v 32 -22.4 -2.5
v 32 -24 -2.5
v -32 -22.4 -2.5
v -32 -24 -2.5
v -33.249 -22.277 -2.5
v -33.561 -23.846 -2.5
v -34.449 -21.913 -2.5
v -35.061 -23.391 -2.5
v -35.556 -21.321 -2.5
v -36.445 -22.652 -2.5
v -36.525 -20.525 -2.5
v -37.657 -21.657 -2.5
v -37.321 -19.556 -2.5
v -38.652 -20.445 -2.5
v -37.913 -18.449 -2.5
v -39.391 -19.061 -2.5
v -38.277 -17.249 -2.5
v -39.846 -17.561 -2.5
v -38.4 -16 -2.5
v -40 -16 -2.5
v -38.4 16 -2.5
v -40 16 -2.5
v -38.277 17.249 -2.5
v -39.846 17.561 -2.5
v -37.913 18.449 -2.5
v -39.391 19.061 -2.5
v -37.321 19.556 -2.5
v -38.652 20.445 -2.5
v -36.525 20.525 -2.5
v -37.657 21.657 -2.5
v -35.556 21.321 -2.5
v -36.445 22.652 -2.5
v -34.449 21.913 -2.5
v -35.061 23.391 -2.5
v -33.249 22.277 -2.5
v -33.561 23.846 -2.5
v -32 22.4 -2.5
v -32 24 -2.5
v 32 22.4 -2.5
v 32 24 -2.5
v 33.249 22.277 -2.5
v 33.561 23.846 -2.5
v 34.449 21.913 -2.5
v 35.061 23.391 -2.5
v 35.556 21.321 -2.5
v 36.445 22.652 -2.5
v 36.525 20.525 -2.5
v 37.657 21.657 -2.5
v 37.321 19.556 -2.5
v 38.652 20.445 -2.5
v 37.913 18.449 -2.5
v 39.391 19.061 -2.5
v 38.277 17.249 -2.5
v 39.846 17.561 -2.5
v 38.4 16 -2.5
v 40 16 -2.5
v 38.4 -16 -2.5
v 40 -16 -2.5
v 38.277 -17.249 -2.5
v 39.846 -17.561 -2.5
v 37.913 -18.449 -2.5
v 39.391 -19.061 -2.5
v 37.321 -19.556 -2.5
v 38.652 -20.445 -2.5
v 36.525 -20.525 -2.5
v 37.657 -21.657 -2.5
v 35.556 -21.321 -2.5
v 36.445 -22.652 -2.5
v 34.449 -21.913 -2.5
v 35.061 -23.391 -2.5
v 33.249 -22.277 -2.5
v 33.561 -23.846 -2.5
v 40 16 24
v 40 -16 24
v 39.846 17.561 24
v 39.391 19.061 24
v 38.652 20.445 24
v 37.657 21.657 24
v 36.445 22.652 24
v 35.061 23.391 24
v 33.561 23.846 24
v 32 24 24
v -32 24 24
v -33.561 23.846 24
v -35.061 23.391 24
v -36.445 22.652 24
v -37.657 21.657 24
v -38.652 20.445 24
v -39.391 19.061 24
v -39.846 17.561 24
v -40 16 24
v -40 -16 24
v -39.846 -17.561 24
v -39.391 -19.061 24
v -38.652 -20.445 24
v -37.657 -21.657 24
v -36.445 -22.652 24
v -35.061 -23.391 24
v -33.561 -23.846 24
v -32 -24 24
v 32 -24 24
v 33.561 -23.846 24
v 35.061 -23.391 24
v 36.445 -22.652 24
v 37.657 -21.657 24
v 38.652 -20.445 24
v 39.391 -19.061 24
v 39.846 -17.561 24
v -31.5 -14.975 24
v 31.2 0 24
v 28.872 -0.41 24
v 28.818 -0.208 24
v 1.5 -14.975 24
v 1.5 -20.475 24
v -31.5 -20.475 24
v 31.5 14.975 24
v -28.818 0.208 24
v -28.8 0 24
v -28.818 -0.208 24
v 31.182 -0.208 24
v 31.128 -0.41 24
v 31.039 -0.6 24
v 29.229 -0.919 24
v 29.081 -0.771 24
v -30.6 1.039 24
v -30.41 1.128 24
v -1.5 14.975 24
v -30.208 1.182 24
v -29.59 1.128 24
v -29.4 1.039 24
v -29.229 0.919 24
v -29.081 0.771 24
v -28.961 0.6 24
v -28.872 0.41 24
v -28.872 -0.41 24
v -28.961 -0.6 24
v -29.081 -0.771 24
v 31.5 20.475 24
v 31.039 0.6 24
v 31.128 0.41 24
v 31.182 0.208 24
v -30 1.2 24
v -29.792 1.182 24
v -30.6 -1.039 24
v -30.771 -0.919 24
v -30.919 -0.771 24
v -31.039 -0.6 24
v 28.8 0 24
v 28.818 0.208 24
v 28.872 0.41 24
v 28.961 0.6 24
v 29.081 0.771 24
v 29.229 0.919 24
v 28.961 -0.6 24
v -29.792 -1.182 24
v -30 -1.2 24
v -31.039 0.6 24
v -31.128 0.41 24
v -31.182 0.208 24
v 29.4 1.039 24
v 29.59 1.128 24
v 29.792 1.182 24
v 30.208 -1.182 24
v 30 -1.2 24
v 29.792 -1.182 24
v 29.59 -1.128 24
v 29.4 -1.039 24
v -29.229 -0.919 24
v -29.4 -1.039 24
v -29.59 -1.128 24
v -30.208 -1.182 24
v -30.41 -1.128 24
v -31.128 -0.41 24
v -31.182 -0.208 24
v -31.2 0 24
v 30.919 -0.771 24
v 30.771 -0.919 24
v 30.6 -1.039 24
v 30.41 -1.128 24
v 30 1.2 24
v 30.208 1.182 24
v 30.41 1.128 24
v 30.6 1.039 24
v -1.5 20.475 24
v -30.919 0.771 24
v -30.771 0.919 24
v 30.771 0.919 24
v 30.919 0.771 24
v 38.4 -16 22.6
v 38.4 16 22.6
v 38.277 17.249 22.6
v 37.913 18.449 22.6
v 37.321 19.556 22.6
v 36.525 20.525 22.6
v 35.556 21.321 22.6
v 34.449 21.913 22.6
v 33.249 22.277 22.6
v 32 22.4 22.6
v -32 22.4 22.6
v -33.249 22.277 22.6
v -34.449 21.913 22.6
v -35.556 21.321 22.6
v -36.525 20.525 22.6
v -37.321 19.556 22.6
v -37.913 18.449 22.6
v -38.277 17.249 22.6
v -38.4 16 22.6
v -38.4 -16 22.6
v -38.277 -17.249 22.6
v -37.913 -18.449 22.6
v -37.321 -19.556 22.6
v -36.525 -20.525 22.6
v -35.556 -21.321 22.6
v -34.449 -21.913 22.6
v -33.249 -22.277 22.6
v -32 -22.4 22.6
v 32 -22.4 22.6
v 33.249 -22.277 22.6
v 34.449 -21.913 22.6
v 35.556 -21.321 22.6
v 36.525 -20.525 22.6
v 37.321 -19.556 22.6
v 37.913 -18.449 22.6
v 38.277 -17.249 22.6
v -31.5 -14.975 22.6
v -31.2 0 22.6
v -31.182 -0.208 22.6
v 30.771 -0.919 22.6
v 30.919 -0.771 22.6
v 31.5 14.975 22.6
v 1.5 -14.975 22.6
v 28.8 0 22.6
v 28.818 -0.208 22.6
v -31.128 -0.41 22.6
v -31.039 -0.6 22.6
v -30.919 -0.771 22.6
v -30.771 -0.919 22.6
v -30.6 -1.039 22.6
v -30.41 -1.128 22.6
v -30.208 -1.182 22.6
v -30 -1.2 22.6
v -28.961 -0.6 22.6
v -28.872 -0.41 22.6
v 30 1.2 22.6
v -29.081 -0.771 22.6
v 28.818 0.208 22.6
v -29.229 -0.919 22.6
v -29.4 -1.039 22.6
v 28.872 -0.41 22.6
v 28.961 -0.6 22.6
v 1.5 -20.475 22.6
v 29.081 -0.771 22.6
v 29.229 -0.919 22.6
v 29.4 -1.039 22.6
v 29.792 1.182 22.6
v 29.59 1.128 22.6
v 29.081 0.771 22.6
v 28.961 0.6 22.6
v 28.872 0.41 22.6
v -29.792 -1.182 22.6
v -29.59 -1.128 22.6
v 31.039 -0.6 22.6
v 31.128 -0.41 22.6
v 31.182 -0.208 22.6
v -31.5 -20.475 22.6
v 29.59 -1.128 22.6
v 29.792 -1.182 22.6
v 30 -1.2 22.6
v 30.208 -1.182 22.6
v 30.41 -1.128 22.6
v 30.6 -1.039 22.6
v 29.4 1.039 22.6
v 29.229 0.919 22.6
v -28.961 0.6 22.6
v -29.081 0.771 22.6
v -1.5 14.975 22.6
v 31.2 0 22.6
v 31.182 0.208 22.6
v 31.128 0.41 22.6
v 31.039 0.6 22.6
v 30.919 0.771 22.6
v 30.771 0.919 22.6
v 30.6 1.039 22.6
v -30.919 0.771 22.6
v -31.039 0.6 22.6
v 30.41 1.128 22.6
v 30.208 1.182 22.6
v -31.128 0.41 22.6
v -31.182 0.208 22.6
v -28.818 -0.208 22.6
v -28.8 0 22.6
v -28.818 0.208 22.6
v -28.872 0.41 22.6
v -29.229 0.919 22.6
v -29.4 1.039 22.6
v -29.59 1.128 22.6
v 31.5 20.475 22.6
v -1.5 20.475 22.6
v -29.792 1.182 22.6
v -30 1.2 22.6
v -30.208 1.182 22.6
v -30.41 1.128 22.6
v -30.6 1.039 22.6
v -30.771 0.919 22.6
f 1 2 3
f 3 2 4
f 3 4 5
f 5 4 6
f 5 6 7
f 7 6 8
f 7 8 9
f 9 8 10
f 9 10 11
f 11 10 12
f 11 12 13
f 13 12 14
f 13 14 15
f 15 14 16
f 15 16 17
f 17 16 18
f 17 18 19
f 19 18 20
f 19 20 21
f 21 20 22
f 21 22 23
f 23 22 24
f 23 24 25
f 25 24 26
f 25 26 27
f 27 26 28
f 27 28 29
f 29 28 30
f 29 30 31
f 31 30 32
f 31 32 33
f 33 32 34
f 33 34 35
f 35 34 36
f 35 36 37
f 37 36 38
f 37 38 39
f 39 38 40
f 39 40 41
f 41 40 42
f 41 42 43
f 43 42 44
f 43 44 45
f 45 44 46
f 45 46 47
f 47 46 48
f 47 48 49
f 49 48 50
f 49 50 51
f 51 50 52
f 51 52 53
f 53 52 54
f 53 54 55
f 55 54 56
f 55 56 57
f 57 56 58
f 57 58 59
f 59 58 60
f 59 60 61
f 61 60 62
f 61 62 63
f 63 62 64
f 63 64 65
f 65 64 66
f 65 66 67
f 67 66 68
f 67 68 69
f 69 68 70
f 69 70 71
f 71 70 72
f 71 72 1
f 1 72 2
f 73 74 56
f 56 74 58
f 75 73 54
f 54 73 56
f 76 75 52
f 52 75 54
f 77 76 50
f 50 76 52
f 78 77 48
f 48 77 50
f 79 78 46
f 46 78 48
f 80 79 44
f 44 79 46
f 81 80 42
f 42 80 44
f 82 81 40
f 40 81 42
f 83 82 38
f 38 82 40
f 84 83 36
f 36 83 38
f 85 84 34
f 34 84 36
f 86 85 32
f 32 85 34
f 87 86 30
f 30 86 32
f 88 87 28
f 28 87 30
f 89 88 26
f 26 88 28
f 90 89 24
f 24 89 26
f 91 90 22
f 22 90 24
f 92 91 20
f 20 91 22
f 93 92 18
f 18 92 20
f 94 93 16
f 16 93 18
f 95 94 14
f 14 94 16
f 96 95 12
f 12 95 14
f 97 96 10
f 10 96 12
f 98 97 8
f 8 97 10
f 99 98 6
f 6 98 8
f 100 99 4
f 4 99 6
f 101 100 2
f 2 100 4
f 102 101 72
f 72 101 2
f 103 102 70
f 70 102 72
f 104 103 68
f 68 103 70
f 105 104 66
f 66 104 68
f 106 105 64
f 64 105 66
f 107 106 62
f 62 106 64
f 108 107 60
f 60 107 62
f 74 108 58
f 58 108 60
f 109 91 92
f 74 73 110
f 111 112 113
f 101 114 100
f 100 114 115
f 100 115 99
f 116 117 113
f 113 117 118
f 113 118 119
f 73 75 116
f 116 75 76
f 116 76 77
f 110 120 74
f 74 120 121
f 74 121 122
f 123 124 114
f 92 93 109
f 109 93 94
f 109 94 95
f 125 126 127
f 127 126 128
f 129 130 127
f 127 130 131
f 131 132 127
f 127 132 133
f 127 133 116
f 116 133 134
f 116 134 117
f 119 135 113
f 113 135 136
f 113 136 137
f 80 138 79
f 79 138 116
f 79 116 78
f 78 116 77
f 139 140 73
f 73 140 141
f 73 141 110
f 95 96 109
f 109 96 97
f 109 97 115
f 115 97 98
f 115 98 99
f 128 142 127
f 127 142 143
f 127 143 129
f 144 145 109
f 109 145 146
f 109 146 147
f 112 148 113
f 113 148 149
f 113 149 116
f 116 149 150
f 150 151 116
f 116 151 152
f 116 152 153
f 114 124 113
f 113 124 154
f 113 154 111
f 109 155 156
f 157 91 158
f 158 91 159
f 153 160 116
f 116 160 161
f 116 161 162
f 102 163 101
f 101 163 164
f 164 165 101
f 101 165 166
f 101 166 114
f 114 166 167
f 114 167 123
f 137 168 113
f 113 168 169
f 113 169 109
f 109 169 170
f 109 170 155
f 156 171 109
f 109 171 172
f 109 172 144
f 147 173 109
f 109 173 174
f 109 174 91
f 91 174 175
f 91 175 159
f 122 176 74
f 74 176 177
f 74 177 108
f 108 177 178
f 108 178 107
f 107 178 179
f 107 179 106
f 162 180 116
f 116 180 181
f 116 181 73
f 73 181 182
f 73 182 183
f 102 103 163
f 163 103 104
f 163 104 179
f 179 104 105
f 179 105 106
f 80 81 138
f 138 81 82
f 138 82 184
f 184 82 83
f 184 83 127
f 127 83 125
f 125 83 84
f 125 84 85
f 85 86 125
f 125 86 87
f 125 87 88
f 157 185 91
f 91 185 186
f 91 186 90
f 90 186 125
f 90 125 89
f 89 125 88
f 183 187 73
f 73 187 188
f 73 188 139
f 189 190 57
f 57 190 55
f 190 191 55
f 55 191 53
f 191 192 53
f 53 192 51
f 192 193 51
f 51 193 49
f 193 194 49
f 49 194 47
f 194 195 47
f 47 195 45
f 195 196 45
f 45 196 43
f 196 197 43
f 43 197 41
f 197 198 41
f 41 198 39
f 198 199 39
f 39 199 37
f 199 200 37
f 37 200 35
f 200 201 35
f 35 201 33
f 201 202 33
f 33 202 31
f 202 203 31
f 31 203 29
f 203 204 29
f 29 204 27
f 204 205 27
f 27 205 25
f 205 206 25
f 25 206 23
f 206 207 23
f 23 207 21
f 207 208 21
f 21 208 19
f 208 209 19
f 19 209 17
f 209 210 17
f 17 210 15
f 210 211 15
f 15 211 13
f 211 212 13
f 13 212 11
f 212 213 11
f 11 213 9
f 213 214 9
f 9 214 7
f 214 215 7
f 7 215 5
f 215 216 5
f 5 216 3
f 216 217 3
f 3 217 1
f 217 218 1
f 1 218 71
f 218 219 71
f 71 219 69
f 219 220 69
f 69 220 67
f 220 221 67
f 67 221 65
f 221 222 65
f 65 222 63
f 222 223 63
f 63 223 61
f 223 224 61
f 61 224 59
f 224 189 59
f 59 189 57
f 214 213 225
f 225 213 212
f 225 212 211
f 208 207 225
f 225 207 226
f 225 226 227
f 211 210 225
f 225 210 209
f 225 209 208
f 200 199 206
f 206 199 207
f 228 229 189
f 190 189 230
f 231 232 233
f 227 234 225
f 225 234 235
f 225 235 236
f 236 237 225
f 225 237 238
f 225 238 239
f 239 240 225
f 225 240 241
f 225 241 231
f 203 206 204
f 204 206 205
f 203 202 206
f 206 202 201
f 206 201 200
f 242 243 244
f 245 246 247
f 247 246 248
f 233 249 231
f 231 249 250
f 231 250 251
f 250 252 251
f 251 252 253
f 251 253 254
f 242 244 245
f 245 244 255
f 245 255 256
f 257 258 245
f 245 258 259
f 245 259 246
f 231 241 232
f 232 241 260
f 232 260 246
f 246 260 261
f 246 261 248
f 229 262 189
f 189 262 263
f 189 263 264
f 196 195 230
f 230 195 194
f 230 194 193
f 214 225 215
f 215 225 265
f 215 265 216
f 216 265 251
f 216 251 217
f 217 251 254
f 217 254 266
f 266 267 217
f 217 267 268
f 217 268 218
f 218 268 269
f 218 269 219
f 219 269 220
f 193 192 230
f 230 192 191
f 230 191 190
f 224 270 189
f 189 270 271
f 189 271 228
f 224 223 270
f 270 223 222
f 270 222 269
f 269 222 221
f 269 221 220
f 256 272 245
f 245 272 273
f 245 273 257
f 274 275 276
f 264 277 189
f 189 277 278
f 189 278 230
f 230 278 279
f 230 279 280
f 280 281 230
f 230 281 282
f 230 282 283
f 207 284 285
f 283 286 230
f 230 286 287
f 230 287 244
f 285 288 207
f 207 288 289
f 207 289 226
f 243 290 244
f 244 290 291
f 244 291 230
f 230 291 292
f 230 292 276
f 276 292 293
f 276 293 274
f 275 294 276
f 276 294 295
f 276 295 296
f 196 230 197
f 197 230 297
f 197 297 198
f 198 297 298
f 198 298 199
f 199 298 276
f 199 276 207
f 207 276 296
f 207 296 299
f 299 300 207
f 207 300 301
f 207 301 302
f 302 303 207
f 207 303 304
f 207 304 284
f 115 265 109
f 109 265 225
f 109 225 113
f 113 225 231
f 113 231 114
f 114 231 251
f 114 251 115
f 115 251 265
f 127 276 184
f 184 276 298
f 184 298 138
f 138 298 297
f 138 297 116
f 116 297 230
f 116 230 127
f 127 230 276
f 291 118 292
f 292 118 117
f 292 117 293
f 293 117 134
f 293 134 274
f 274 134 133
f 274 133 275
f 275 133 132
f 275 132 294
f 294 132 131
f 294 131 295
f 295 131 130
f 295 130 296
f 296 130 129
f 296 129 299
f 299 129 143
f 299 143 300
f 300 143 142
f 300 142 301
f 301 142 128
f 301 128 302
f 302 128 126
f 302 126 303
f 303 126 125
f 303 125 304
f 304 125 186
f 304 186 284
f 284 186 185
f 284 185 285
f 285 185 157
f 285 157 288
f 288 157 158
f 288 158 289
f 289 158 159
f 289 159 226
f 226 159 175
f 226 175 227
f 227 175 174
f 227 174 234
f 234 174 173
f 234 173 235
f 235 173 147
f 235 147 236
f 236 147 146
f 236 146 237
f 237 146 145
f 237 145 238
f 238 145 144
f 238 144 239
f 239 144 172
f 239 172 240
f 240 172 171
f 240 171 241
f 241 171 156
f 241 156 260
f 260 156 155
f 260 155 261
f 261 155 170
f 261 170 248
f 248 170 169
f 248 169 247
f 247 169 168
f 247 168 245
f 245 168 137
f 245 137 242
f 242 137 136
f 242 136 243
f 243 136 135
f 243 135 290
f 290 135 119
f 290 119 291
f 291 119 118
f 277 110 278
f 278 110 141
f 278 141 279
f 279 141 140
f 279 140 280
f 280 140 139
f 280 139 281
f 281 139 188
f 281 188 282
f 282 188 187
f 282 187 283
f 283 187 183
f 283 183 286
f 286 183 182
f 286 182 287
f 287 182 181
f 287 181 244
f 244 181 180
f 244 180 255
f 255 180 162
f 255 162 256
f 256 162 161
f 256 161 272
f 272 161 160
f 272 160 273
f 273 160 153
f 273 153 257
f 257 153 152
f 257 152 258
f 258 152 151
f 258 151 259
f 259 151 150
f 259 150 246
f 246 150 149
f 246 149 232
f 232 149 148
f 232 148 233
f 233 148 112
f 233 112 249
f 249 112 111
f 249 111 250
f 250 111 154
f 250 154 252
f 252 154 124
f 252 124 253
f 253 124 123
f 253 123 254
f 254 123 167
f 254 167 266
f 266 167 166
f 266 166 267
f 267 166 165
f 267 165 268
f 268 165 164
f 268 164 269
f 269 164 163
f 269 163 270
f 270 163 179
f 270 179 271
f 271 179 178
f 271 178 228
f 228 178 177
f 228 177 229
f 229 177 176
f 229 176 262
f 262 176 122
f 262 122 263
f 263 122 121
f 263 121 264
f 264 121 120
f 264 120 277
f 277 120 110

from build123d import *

# Parameters (mm, degrees)
BOSS_EXTRUDE1_START     = -2.5
BOSS_EXTRUDE1_DEPTH     = 26.5
CUT_EXTRUDE1_START      = -3
CUT_EXTRUDE1_DEPTH      = 25.6
CUT_EXTRUDE2_DEPTH      = 53.459508194
CUT_EXTRUDE2_DEPTH_BACK = 53.459508194
SKETCH3_W               = 33
SKETCH3_H               = 5.5
CUT_EXTRUDE3_DEPTH      = 53.459508194
CUT_EXTRUDE3_DEPTH_BACK = 53.459508194
SKETCH4_R               = 1.2


with BuildPart() as part:
    # Sketch1 → Boss-Extrude1 (new body)
    with BuildSketch(Plane.XY.offset(BOSS_EXTRUDE1_START)):
        Polygon((40, 16), (39.846282243, 17.560722576), (39.39103626, 19.061467459), (38.651756898, 20.444561864), (37.656854249, 21.656854249), (36.444561864, 22.651756898), (35.061467459, 23.39103626), (33.560722576, 23.846282243), (32, 24), (-32, 24), (-33.560722576, 23.846282243), (-35.061467459, 23.39103626), (-36.444561864, 22.651756898), (-37.656854249, 21.656854249), (-38.651756898, 20.444561864), (-39.39103626, 19.061467459), (-39.846282243, 17.560722576), (-40, 16), (-40, -16), (-39.846282243, -17.560722576), (-39.39103626, -19.061467459), (-38.651756898, -20.444561864), (-37.656854249, -21.656854249), (-36.444561864, -22.651756898), (-35.061467459, -23.39103626), (-33.560722576, -23.846282243), (-32, -24), (32, -24), (33.560722576, -23.846282243), (35.061467459, -23.39103626), (36.444561864, -22.651756898), (37.656854249, -21.656854249), (38.651756898, -20.444561864), (39.39103626, -19.061467459), (39.846282243, -17.560722576), (40, -16), align=None)
    extrude(amount=BOSS_EXTRUDE1_DEPTH)

    # Sketch2 → Cut-Extrude1 (cut)
    with BuildSketch(Plane.XY.offset(CUT_EXTRUDE1_START)):
        Polygon((38.4, 16), (38.277025795, 17.248578061), (37.912829008, 18.449173967), (37.321405519, 19.555649491), (36.5254834, 20.5254834), (35.555649491, 21.321405519), (34.449173967, 21.912829008), (33.248578061, 22.277025795), (32, 22.4), (-32, 22.4), (-33.248578061, 22.277025795), (-34.449173967, 21.912829008), (-35.555649491, 21.321405519), (-36.5254834, 20.5254834), (-37.321405519, 19.555649491), (-37.912829008, 18.449173967), (-38.277025795, 17.248578061), (-38.4, 16), (-38.4, -16), (-38.277025795, -17.248578061), (-37.912829008, -18.449173967), (-37.321405519, -19.555649491), (-36.5254834, -20.5254834), (-35.555649491, -21.321405519), (-34.449173967, -21.912829008), (-33.248578061, -22.277025795), (-32, -22.4), (32, -22.4), (33.248578061, -22.277025795), (34.449173967, -21.912829008), (35.555649491, -21.321405519), (36.5254834, -20.5254834), (37.321405519, -19.555649491), (37.912829008, -18.449173967), (38.277025795, -17.248578061), (38.4, -16), align=None)
    extrude(amount=CUT_EXTRUDE1_DEPTH, mode=Mode.SUBTRACT)

    # Sketch3 → Cut-Extrude2 (cut, two sides: drawn at the far end of the back side and taken through both)
    with BuildSketch(Plane.XY.offset(-CUT_EXTRUDE2_DEPTH_BACK)):
        with Locations((15, 17.725)):
            Rectangle(SKETCH3_W, SKETCH3_H)
        with Locations((-15, -17.725)):
            Rectangle(SKETCH3_W, SKETCH3_H)
    extrude(amount=CUT_EXTRUDE2_DEPTH + CUT_EXTRUDE2_DEPTH_BACK, mode=Mode.SUBTRACT)

    # Sketch4 → Cut-Extrude3 (cut, two sides: drawn at the far end of the back side and taken through both)
    with BuildSketch(Plane.XY.offset(-CUT_EXTRUDE3_DEPTH_BACK)):
        with Locations((30, 0)):
            Circle(SKETCH4_R)
        with Locations((-30, 0)):
            Circle(SKETCH4_R)
    extrude(amount=CUT_EXTRUDE3_DEPTH + CUT_EXTRUDE3_DEPTH_BACK, mode=Mode.SUBTRACT)


solid = part.part
